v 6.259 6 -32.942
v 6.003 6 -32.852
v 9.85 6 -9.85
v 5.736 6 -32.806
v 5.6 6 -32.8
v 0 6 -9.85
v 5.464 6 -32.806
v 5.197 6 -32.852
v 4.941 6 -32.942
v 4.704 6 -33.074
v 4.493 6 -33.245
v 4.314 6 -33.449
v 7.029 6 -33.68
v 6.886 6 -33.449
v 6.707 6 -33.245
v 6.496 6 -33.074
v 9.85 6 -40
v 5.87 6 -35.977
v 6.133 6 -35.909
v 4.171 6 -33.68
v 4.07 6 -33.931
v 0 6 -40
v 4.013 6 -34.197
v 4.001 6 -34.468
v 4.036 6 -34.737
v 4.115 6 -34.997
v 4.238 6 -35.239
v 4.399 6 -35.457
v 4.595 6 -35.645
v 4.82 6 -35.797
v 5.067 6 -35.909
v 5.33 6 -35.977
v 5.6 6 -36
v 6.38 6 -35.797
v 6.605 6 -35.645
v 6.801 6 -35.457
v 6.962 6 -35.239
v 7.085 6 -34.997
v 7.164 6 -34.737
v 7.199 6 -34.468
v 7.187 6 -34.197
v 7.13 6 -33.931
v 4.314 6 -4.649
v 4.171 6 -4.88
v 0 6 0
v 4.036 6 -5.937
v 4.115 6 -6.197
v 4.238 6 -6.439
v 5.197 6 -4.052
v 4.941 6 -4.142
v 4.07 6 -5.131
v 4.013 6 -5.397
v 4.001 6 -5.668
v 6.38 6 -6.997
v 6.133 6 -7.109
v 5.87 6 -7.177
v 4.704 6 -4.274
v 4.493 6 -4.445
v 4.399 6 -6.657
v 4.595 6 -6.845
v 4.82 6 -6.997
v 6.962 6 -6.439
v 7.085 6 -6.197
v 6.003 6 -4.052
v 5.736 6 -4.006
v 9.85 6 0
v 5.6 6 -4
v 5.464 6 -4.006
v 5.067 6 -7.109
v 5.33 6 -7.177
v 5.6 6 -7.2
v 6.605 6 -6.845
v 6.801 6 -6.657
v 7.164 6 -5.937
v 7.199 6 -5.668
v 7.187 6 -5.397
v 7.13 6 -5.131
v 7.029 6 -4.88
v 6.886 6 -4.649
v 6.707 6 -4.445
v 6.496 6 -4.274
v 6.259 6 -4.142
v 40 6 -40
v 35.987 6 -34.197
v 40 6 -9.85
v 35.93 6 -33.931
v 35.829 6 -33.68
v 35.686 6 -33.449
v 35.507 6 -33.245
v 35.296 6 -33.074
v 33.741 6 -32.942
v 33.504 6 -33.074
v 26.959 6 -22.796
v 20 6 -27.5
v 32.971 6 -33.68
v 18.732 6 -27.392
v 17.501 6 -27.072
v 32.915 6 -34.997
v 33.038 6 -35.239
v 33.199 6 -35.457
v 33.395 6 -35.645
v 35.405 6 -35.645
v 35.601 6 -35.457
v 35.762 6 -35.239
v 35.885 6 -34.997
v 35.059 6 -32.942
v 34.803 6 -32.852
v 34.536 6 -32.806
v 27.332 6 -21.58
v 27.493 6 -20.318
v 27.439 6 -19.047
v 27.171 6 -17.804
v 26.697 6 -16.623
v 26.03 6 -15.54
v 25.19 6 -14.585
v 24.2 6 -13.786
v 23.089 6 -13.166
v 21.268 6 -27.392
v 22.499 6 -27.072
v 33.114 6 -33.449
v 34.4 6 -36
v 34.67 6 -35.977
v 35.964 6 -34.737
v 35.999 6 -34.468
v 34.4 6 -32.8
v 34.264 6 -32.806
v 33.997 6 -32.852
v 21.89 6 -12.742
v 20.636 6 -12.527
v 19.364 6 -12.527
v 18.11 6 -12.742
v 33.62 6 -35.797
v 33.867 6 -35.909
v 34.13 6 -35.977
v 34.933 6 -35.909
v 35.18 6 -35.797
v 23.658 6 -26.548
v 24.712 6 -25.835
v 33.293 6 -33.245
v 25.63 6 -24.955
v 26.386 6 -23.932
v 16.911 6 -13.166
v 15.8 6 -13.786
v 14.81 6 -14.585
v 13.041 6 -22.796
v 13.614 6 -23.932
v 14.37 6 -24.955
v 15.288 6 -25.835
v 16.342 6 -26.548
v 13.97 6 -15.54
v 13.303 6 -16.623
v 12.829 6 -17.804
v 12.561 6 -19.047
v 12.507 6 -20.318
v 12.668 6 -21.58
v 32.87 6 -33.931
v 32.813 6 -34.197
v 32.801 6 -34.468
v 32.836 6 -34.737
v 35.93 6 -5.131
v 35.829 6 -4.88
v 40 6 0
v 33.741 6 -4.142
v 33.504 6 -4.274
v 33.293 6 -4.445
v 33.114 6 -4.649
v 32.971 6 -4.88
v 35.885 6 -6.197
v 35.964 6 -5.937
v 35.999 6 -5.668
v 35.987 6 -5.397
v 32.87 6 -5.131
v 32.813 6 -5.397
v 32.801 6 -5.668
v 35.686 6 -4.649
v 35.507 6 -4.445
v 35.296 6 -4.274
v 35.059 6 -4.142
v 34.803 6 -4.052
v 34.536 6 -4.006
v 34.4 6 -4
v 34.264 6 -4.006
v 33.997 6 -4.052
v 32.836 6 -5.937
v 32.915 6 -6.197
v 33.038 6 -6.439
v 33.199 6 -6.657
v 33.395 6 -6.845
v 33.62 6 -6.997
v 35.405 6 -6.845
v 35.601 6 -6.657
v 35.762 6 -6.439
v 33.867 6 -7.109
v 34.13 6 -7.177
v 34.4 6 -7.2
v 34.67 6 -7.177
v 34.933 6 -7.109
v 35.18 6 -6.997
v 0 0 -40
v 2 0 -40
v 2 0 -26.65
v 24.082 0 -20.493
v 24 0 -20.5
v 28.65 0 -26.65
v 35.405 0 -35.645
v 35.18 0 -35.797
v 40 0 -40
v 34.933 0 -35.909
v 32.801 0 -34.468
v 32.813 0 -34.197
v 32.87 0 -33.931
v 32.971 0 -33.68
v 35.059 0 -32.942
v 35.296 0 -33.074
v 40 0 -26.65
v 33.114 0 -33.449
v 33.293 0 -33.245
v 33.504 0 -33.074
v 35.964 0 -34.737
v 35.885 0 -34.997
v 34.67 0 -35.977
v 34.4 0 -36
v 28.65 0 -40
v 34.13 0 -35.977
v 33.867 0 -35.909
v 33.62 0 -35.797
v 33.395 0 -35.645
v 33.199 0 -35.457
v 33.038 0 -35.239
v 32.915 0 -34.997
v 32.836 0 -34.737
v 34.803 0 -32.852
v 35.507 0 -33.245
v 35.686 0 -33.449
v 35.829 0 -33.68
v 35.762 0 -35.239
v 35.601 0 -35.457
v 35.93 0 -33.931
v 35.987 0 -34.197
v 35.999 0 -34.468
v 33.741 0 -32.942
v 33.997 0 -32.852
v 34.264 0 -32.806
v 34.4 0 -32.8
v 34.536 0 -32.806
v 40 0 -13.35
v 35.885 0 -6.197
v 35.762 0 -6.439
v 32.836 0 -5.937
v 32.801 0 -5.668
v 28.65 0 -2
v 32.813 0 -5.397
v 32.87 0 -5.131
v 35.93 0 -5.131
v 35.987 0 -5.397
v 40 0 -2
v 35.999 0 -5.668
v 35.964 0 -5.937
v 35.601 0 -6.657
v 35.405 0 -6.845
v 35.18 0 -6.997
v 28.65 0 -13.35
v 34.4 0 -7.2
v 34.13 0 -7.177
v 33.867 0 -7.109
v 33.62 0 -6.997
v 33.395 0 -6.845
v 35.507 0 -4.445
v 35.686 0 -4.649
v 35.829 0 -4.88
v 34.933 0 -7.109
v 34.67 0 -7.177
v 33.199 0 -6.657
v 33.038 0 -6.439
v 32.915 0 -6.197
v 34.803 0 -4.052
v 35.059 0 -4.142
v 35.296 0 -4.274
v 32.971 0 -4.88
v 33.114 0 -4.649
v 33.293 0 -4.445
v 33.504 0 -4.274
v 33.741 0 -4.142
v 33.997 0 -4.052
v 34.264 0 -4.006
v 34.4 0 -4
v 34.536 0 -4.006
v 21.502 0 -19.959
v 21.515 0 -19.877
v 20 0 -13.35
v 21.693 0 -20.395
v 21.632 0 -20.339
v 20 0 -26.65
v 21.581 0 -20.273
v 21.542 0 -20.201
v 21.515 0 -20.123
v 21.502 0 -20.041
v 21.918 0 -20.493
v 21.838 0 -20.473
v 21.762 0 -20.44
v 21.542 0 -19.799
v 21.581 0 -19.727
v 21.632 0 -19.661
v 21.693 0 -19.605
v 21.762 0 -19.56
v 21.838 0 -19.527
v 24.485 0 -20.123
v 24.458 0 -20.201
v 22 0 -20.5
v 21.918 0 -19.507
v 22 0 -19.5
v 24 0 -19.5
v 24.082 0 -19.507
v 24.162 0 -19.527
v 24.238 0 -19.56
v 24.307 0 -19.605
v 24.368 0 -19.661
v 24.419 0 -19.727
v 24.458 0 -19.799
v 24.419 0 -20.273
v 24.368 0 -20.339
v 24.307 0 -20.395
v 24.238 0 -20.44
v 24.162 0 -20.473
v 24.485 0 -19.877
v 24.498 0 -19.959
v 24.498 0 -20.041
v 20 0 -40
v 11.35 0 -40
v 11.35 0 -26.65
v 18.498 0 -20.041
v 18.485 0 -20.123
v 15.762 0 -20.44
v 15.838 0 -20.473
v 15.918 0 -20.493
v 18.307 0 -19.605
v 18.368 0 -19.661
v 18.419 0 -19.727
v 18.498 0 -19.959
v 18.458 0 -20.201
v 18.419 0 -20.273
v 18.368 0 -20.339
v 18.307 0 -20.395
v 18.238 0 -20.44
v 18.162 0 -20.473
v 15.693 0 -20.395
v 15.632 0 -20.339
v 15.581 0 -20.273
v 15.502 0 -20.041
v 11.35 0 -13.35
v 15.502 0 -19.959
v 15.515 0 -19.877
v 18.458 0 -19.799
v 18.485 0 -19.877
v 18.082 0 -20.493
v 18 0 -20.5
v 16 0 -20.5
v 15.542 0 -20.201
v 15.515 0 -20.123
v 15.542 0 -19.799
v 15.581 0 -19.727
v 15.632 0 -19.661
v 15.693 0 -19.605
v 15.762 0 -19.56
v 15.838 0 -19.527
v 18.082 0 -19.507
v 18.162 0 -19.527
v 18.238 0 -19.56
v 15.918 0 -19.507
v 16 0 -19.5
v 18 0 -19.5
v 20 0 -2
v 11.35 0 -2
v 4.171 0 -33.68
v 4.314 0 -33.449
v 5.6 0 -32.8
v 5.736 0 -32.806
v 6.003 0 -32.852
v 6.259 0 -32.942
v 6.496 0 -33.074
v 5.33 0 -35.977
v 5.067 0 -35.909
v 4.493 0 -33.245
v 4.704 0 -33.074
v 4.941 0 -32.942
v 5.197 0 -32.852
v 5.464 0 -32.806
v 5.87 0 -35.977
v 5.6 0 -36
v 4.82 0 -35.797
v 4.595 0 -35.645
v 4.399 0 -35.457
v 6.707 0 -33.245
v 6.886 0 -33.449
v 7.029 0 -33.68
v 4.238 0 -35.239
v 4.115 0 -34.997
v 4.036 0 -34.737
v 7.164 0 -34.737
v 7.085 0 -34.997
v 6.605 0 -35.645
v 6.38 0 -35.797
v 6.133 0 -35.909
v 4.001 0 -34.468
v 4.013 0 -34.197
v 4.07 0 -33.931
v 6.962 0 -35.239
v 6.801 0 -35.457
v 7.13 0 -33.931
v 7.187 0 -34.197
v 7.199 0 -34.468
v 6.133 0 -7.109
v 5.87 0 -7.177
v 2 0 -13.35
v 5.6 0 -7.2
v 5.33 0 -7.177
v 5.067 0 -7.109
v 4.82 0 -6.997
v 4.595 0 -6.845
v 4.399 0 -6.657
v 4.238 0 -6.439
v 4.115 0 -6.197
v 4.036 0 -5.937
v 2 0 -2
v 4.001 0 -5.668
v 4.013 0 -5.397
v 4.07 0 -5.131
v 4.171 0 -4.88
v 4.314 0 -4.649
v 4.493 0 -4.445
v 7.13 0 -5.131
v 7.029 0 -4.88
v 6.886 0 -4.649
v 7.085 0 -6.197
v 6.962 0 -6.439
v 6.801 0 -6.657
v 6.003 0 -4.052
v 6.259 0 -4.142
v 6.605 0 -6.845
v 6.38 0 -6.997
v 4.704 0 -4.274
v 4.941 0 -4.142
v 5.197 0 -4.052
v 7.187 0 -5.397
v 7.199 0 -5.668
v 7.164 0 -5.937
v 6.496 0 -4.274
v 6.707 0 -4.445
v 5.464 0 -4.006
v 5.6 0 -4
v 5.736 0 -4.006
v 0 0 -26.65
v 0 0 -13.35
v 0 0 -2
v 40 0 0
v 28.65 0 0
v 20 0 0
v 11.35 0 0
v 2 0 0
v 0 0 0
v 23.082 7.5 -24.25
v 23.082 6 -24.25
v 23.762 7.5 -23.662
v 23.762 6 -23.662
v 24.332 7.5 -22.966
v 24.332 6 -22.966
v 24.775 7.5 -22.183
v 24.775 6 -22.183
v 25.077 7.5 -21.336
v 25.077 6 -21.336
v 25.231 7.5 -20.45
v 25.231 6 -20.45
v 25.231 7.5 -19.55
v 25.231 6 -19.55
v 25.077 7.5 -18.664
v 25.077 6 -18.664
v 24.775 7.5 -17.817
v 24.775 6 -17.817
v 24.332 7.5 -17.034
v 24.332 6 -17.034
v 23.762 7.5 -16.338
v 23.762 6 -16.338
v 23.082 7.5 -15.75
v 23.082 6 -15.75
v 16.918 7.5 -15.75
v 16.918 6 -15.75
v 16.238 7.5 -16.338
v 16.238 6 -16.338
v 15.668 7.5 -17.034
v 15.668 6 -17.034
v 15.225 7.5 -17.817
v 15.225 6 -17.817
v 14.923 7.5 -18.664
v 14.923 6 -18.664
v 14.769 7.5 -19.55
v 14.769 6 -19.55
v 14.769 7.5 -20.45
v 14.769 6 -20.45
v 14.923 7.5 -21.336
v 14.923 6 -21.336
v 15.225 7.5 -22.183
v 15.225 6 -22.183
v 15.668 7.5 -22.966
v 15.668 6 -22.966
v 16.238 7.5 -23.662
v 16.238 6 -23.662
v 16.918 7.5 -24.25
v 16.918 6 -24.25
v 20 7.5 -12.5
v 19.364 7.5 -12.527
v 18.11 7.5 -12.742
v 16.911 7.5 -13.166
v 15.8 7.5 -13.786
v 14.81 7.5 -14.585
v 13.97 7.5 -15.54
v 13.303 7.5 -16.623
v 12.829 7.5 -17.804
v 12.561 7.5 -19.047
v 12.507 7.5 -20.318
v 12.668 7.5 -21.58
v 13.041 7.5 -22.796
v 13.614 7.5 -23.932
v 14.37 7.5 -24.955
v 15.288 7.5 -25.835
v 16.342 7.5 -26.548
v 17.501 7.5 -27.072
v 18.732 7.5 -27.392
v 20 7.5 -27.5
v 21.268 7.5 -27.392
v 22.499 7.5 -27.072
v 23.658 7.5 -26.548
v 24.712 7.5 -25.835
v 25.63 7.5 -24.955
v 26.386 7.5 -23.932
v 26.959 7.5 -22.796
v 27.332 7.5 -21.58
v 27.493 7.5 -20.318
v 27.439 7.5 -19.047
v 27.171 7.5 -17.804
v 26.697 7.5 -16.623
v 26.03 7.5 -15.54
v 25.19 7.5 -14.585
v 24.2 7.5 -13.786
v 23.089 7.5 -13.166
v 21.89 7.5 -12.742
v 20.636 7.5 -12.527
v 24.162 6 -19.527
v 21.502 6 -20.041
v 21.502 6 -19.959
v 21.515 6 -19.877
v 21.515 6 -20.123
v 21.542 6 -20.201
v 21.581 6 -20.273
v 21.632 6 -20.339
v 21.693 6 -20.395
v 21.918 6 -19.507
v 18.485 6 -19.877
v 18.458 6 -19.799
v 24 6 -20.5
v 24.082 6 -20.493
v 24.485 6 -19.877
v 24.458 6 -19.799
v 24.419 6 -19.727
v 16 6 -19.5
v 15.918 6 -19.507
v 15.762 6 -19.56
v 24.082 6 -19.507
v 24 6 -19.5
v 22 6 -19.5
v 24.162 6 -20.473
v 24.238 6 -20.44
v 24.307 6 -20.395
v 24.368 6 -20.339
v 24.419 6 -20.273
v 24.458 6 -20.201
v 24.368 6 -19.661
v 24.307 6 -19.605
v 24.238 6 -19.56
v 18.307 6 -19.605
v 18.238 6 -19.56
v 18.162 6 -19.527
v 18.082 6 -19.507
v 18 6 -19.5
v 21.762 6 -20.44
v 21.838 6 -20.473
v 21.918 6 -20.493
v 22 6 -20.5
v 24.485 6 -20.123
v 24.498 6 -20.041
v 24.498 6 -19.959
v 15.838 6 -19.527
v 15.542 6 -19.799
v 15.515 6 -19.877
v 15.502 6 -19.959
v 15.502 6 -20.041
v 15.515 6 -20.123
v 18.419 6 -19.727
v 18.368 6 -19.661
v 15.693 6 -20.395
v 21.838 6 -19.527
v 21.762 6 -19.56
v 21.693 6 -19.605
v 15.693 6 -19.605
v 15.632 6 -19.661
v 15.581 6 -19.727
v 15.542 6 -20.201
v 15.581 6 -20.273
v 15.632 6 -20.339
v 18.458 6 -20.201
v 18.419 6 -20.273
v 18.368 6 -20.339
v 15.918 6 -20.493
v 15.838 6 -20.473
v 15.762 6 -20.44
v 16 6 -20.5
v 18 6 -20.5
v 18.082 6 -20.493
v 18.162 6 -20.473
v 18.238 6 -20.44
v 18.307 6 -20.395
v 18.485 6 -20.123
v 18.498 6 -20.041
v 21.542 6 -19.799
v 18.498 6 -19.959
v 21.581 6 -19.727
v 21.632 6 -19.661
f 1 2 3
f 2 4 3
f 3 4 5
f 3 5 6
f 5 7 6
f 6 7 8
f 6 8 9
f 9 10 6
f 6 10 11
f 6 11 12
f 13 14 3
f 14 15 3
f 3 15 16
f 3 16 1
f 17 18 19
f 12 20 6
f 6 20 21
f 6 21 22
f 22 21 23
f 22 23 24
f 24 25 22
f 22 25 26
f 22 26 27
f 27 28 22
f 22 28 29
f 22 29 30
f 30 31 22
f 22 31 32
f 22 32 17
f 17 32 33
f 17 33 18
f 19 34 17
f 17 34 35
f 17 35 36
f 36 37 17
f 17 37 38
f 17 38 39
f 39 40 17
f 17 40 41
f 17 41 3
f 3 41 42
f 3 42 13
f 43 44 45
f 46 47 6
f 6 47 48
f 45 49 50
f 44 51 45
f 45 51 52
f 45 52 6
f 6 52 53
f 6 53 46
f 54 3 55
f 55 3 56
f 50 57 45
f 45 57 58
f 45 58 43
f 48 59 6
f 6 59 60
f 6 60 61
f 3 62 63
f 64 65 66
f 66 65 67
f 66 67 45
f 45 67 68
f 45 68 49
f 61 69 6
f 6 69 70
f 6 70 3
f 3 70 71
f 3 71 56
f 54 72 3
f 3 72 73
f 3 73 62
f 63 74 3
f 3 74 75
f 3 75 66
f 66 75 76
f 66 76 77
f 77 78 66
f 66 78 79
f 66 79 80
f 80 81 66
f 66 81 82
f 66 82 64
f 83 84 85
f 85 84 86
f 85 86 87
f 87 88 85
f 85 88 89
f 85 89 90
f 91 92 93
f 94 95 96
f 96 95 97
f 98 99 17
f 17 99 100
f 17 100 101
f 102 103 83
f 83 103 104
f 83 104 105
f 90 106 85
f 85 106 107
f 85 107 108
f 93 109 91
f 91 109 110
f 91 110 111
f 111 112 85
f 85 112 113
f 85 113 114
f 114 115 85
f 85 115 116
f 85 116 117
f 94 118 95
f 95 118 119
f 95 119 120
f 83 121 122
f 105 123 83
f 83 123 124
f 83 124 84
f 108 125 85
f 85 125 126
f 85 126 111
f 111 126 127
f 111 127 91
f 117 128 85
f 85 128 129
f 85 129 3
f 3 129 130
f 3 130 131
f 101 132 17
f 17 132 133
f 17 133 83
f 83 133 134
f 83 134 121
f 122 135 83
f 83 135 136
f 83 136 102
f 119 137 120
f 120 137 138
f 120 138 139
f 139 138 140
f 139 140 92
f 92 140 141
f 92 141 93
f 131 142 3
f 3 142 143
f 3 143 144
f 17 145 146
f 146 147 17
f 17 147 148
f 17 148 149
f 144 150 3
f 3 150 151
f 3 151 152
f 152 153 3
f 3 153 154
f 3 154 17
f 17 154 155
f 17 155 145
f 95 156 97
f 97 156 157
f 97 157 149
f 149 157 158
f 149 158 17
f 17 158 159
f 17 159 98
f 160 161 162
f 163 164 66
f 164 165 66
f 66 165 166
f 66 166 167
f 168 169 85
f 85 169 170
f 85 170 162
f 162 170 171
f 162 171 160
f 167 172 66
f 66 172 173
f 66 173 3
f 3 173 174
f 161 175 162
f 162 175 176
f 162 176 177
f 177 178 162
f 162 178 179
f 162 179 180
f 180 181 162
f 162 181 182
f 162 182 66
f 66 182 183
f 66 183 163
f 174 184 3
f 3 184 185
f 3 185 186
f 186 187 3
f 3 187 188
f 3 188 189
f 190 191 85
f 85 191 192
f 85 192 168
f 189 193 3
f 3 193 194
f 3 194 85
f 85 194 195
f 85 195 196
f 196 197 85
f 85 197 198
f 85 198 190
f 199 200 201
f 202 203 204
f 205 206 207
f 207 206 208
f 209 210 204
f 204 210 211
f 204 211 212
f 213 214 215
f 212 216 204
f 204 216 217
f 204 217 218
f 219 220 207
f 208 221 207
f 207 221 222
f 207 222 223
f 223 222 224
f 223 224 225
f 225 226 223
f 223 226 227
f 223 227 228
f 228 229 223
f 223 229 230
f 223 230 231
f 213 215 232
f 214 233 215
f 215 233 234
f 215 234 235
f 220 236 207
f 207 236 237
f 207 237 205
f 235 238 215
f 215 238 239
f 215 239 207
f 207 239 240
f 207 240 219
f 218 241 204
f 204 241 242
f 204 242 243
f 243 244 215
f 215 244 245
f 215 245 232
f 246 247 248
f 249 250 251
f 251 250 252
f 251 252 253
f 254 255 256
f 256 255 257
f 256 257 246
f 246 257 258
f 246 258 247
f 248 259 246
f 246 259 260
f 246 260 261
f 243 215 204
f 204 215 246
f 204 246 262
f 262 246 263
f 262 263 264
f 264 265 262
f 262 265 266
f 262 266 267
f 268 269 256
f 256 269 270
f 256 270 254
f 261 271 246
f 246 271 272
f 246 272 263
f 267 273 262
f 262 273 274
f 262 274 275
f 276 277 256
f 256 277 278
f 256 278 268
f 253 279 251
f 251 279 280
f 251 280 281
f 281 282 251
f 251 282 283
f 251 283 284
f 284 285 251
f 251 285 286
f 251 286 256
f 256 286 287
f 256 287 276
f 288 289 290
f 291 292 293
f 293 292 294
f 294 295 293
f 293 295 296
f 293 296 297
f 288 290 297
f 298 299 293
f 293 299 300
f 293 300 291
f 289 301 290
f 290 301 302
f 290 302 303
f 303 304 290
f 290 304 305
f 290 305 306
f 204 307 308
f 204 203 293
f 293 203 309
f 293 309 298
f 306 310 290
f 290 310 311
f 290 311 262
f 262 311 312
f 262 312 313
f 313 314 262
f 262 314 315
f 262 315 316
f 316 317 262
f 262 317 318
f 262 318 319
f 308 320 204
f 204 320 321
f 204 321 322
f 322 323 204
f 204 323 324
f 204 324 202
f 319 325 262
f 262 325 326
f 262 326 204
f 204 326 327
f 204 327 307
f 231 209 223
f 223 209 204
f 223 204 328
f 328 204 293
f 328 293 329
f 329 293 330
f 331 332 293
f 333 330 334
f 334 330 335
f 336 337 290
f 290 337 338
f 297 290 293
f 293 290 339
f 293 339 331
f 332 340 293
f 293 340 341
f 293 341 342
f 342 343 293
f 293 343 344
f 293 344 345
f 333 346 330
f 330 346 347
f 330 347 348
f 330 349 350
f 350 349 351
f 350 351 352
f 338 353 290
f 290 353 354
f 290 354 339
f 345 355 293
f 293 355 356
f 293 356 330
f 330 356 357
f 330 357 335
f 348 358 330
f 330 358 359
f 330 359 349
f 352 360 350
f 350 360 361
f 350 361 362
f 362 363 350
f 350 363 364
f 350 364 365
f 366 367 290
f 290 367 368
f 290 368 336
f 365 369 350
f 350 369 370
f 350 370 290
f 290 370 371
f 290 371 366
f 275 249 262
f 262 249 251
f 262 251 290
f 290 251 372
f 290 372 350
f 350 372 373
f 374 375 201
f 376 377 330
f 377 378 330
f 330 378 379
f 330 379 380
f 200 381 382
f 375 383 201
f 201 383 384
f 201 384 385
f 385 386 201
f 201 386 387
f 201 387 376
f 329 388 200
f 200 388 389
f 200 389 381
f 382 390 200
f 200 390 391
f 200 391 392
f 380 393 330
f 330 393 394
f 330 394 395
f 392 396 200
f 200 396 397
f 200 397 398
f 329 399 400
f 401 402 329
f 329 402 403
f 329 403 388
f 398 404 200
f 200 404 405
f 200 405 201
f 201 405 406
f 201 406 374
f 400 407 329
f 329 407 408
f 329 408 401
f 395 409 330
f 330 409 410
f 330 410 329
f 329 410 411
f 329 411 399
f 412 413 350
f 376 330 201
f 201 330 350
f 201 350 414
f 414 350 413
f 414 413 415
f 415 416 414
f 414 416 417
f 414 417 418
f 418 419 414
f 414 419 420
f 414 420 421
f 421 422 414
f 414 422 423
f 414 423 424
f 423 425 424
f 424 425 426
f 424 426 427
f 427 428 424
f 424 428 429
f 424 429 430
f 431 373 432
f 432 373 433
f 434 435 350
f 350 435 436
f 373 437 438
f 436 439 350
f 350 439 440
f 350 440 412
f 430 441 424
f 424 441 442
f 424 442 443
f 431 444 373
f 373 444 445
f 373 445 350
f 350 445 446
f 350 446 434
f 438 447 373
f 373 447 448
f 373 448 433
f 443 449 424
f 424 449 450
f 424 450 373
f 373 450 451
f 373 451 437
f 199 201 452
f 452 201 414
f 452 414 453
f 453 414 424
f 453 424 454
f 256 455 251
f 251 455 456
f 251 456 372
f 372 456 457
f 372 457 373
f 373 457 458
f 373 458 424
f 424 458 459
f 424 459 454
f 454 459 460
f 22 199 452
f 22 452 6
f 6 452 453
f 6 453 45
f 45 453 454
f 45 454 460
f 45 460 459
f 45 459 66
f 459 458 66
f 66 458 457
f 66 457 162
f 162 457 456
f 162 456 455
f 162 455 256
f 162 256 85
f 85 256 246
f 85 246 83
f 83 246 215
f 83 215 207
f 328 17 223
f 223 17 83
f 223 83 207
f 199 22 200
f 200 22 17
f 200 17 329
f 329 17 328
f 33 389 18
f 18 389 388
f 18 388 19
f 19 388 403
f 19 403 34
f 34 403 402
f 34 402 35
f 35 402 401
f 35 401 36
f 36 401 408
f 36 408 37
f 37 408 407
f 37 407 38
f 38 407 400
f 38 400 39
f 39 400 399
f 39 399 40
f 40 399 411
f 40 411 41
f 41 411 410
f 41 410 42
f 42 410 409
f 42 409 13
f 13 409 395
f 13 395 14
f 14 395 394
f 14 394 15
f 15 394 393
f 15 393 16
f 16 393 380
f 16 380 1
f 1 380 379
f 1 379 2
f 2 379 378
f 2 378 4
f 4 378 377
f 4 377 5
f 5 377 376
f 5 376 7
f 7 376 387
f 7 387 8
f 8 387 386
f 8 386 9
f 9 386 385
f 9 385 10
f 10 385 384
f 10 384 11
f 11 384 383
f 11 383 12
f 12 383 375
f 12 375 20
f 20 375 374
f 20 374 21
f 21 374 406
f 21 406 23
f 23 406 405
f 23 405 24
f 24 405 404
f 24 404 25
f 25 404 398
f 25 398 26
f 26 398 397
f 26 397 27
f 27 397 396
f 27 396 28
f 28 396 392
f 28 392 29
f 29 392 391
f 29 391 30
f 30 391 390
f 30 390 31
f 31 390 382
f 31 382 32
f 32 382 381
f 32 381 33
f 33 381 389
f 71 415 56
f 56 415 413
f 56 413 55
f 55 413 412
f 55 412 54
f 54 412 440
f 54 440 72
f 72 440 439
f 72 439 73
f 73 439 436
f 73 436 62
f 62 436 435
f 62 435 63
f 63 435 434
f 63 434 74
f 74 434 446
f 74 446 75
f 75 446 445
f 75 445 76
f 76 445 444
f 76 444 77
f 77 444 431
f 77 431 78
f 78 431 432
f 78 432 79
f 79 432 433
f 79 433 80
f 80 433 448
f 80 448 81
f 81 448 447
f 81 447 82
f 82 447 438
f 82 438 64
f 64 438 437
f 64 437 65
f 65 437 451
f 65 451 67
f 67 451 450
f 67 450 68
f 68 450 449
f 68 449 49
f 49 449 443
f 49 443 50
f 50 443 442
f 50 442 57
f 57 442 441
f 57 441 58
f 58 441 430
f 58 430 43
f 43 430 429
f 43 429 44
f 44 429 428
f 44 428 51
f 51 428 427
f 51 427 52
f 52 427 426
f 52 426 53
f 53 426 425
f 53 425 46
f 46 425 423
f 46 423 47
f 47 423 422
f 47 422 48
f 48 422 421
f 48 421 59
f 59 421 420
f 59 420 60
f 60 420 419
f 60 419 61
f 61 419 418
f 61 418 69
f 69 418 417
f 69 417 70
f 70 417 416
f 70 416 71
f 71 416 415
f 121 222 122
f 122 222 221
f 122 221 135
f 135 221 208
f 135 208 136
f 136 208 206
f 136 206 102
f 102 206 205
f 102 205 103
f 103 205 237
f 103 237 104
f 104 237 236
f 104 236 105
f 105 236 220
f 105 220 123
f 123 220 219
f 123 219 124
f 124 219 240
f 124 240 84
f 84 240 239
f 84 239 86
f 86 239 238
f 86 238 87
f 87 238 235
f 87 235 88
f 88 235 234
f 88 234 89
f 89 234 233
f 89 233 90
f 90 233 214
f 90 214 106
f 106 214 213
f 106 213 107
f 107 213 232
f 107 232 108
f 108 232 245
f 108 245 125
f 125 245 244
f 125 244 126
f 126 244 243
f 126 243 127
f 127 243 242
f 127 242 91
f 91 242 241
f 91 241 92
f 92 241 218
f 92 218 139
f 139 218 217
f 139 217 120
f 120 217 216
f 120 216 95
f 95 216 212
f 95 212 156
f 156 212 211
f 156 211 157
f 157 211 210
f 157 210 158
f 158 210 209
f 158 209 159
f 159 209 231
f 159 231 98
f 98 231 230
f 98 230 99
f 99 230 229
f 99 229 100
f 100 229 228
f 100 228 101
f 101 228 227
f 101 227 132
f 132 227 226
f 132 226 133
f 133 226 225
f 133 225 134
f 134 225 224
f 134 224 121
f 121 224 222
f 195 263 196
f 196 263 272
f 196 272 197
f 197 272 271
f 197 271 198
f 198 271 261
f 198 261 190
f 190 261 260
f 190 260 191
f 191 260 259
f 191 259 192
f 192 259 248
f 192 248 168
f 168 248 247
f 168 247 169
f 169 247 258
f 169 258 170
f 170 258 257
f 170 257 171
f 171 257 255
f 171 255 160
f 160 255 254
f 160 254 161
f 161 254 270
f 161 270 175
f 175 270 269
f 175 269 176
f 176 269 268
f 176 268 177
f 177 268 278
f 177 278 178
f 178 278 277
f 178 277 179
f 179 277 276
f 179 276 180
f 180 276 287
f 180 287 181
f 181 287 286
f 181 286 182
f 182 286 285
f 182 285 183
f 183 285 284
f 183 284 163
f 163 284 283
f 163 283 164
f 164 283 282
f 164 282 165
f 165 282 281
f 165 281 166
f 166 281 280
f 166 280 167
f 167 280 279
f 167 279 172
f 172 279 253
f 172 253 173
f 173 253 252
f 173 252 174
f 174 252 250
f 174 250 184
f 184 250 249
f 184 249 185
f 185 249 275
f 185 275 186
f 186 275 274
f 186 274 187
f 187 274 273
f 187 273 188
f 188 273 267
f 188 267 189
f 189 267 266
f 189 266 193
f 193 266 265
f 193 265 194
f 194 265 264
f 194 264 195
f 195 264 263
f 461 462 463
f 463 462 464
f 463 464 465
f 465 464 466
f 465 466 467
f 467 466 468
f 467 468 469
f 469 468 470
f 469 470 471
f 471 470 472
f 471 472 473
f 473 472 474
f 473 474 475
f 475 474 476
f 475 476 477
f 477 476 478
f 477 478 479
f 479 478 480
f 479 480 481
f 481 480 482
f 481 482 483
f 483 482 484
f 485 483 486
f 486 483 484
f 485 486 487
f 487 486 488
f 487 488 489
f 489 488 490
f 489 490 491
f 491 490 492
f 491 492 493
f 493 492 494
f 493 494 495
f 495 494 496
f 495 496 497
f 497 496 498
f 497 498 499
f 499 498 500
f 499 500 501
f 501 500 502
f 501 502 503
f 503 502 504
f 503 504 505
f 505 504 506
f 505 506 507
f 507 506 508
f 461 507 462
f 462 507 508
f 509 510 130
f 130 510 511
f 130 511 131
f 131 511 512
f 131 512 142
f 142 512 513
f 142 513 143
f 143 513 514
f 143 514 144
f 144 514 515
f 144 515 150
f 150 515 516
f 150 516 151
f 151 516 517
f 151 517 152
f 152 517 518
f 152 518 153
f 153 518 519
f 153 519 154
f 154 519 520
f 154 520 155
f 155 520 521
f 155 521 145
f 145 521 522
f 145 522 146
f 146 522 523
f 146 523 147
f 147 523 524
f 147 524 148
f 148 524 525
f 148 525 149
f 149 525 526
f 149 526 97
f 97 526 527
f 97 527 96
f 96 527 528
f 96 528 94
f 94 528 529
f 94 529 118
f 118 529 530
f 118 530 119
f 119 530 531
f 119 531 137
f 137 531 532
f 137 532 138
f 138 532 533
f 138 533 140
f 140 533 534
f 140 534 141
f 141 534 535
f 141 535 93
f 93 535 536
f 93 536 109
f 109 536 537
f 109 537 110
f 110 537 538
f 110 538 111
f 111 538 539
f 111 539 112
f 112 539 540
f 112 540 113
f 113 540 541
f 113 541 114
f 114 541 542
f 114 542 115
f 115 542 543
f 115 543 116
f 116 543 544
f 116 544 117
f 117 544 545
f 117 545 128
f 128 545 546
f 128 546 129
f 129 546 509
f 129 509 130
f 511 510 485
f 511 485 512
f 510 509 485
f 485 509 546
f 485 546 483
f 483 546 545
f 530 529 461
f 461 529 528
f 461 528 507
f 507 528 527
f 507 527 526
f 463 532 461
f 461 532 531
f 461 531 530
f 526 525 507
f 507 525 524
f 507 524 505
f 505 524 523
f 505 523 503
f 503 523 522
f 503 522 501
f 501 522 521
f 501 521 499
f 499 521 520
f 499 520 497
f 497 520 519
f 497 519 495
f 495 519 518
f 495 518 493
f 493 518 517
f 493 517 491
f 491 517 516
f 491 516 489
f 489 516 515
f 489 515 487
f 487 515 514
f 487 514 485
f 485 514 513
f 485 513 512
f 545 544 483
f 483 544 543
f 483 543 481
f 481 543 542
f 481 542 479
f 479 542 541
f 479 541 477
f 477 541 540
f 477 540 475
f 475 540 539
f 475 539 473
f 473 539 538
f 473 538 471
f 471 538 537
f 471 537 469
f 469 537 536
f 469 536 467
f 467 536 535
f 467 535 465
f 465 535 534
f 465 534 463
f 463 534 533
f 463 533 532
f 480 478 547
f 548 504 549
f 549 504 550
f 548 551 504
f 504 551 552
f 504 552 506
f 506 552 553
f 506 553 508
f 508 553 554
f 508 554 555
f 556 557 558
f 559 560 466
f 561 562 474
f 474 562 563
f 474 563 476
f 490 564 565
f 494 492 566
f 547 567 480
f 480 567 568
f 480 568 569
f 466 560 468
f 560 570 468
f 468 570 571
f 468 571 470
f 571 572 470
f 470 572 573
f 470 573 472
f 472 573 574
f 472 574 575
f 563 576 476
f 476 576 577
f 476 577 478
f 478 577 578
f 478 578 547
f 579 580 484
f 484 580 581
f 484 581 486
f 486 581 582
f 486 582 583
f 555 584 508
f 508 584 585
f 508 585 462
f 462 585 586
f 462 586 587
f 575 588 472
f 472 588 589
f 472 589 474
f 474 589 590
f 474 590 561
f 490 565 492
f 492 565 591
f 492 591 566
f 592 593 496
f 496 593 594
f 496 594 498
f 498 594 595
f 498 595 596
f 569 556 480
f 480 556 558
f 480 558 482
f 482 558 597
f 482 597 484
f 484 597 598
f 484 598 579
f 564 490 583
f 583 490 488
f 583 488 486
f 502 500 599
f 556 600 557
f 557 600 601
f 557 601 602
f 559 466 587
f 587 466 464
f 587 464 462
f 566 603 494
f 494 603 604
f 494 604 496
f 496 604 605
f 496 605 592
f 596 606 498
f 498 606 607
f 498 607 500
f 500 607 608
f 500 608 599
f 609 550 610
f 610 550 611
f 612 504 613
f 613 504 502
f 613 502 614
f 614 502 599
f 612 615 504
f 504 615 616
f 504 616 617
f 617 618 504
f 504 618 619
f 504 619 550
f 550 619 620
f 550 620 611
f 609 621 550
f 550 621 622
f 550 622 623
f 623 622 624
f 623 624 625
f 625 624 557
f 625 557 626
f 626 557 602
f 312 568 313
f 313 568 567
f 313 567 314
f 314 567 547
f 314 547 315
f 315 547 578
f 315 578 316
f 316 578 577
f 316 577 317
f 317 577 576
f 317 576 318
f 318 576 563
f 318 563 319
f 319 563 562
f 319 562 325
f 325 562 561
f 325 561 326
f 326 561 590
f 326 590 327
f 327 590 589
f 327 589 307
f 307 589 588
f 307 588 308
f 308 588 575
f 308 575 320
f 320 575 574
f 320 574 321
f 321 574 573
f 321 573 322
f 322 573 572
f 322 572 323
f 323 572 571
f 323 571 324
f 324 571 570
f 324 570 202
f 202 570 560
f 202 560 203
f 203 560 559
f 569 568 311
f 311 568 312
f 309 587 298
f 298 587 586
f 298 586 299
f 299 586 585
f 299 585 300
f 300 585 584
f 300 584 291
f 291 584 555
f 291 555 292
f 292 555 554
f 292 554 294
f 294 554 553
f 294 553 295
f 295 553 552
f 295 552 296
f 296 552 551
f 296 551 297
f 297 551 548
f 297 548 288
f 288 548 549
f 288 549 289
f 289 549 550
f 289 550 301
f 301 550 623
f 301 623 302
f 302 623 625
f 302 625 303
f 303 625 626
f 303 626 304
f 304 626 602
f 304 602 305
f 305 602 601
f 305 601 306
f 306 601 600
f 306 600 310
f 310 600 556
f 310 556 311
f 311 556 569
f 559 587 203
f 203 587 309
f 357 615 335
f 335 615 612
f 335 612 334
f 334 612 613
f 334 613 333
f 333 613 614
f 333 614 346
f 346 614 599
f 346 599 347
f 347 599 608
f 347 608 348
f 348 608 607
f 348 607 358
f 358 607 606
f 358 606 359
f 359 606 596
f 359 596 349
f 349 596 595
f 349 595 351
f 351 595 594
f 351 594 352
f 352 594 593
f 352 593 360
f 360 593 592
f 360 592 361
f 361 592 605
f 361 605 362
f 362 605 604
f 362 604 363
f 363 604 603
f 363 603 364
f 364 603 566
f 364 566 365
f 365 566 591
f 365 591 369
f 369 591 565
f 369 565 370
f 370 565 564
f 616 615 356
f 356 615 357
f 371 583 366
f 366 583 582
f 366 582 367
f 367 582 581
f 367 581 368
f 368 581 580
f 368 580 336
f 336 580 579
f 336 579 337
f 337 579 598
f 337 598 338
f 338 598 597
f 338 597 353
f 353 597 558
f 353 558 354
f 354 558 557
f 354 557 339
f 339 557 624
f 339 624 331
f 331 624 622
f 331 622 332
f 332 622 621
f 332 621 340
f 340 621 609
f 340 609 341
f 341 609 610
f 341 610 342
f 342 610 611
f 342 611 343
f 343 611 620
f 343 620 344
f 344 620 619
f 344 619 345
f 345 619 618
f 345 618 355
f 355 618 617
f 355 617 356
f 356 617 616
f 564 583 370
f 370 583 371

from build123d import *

# Parameters (mm, degrees)
SKETCH1_W           = 40
SKETCH1_H           = 40
SKETCH1_R           = 1.6
BOSS_EXTRUDE1_DEPTH = 6
SKETCH2_R           = 7.5
SKETCH2_R_2         = 5.25
BOSS_EXTRUDE2_DEPTH = 1.5
CUT_EXTRUDE1_DEPTH  = 21.5


with BuildPart() as part:
    # Sketch1 → Boss-Extrude1 (new body)
    with BuildSketch(Plane(origin=(0, 0, 0), x_dir=(1, 0, 0), z_dir=(0, 1, 0))):
        with Locations((20, 20)):
            Rectangle(SKETCH1_W, SKETCH1_H)
        with Locations(Location((5.6, 34.4, 0), (0, 0, 270))):
            Circle(SKETCH1_R, mode=Mode.SUBTRACT)
        with Locations(Location((5.6, 5.6, 0), (0, 0, 270))):
            Circle(SKETCH1_R, mode=Mode.SUBTRACT)
        with Locations(Location((34.4, 34.4, 0), (0, 0, 270))):
            Circle(SKETCH1_R, mode=Mode.SUBTRACT)
        with Locations(Location((34.4, 5.6, 0), (0, 0, 270))):
            Circle(SKETCH1_R, mode=Mode.SUBTRACT)
    extrude(amount=BOSS_EXTRUDE1_DEPTH)

    # Sketch2 → Boss-Extrude2 (add)
    # profile 1 of 3: a face of its own
    with BuildSketch(Plane(origin=(0, 6, 0), x_dir=(1, 0, 0), z_dir=(0, 1, 0))):
        with Locations(Location((20, 20, 0), (0, 0, 90))):
            Circle(SKETCH2_R)
        with Locations((20, 20)):
            Circle(SKETCH2_R_2, mode=Mode.SUBTRACT)
    # profile 2 of 3: a face of its own
    with BuildSketch(Plane(origin=(0, 6, 0), x_dir=(1, 0, 0), z_dir=(0, 1, 0))):
        with BuildLine():
            ThreePointArc((23.082207001, 24.25), (20, 25.25), (16.917792999, 24.25))
            Line((16.917792999, 24.25), (23.082207001, 24.25))
        make_face()
    # profile 3 of 3: a face of its own
    with BuildSketch(Plane(origin=(0, 6, 0), x_dir=(1, 0, 0), z_dir=(0, 1, 0))):
        with BuildLine():
            Line((23.082207001, 15.75), (16.917792999, 15.75))
            ThreePointArc((16.917792999, 15.75), (20, 14.75), (23.082207001, 15.75))
        make_face()
    extrude(amount=BOSS_EXTRUDE2_DEPTH)

    # Sketch4 → Cut-Extrude1 (cut)
    with BuildSketch(Plane(origin=(0, 6, 0), x_dir=(1, 0, 0), z_dir=(0, 1, 0))):
        with BuildLine():
            Line((16, 20.5), (18, 20.5))
            ThreePointArc((18, 20.5), (18.5, 20), (18, 19.5))
            Line((18, 19.5), (16, 19.5))
            ThreePointArc((16, 19.5), (15.5, 20), (16, 20.5))
        make_face()
        with BuildLine():
            Line((24, 19.5), (22, 19.5))
            ThreePointArc((22, 19.5), (21.5, 20), (22, 20.5))
            Line((22, 20.5), (24, 20.5))
            ThreePointArc((24, 20.5), (24.5, 20), (24, 19.5))
        make_face()
    extrude(amount=-CUT_EXTRUDE1_DEPTH, mode=Mode.SUBTRACT)


solid = part.part
